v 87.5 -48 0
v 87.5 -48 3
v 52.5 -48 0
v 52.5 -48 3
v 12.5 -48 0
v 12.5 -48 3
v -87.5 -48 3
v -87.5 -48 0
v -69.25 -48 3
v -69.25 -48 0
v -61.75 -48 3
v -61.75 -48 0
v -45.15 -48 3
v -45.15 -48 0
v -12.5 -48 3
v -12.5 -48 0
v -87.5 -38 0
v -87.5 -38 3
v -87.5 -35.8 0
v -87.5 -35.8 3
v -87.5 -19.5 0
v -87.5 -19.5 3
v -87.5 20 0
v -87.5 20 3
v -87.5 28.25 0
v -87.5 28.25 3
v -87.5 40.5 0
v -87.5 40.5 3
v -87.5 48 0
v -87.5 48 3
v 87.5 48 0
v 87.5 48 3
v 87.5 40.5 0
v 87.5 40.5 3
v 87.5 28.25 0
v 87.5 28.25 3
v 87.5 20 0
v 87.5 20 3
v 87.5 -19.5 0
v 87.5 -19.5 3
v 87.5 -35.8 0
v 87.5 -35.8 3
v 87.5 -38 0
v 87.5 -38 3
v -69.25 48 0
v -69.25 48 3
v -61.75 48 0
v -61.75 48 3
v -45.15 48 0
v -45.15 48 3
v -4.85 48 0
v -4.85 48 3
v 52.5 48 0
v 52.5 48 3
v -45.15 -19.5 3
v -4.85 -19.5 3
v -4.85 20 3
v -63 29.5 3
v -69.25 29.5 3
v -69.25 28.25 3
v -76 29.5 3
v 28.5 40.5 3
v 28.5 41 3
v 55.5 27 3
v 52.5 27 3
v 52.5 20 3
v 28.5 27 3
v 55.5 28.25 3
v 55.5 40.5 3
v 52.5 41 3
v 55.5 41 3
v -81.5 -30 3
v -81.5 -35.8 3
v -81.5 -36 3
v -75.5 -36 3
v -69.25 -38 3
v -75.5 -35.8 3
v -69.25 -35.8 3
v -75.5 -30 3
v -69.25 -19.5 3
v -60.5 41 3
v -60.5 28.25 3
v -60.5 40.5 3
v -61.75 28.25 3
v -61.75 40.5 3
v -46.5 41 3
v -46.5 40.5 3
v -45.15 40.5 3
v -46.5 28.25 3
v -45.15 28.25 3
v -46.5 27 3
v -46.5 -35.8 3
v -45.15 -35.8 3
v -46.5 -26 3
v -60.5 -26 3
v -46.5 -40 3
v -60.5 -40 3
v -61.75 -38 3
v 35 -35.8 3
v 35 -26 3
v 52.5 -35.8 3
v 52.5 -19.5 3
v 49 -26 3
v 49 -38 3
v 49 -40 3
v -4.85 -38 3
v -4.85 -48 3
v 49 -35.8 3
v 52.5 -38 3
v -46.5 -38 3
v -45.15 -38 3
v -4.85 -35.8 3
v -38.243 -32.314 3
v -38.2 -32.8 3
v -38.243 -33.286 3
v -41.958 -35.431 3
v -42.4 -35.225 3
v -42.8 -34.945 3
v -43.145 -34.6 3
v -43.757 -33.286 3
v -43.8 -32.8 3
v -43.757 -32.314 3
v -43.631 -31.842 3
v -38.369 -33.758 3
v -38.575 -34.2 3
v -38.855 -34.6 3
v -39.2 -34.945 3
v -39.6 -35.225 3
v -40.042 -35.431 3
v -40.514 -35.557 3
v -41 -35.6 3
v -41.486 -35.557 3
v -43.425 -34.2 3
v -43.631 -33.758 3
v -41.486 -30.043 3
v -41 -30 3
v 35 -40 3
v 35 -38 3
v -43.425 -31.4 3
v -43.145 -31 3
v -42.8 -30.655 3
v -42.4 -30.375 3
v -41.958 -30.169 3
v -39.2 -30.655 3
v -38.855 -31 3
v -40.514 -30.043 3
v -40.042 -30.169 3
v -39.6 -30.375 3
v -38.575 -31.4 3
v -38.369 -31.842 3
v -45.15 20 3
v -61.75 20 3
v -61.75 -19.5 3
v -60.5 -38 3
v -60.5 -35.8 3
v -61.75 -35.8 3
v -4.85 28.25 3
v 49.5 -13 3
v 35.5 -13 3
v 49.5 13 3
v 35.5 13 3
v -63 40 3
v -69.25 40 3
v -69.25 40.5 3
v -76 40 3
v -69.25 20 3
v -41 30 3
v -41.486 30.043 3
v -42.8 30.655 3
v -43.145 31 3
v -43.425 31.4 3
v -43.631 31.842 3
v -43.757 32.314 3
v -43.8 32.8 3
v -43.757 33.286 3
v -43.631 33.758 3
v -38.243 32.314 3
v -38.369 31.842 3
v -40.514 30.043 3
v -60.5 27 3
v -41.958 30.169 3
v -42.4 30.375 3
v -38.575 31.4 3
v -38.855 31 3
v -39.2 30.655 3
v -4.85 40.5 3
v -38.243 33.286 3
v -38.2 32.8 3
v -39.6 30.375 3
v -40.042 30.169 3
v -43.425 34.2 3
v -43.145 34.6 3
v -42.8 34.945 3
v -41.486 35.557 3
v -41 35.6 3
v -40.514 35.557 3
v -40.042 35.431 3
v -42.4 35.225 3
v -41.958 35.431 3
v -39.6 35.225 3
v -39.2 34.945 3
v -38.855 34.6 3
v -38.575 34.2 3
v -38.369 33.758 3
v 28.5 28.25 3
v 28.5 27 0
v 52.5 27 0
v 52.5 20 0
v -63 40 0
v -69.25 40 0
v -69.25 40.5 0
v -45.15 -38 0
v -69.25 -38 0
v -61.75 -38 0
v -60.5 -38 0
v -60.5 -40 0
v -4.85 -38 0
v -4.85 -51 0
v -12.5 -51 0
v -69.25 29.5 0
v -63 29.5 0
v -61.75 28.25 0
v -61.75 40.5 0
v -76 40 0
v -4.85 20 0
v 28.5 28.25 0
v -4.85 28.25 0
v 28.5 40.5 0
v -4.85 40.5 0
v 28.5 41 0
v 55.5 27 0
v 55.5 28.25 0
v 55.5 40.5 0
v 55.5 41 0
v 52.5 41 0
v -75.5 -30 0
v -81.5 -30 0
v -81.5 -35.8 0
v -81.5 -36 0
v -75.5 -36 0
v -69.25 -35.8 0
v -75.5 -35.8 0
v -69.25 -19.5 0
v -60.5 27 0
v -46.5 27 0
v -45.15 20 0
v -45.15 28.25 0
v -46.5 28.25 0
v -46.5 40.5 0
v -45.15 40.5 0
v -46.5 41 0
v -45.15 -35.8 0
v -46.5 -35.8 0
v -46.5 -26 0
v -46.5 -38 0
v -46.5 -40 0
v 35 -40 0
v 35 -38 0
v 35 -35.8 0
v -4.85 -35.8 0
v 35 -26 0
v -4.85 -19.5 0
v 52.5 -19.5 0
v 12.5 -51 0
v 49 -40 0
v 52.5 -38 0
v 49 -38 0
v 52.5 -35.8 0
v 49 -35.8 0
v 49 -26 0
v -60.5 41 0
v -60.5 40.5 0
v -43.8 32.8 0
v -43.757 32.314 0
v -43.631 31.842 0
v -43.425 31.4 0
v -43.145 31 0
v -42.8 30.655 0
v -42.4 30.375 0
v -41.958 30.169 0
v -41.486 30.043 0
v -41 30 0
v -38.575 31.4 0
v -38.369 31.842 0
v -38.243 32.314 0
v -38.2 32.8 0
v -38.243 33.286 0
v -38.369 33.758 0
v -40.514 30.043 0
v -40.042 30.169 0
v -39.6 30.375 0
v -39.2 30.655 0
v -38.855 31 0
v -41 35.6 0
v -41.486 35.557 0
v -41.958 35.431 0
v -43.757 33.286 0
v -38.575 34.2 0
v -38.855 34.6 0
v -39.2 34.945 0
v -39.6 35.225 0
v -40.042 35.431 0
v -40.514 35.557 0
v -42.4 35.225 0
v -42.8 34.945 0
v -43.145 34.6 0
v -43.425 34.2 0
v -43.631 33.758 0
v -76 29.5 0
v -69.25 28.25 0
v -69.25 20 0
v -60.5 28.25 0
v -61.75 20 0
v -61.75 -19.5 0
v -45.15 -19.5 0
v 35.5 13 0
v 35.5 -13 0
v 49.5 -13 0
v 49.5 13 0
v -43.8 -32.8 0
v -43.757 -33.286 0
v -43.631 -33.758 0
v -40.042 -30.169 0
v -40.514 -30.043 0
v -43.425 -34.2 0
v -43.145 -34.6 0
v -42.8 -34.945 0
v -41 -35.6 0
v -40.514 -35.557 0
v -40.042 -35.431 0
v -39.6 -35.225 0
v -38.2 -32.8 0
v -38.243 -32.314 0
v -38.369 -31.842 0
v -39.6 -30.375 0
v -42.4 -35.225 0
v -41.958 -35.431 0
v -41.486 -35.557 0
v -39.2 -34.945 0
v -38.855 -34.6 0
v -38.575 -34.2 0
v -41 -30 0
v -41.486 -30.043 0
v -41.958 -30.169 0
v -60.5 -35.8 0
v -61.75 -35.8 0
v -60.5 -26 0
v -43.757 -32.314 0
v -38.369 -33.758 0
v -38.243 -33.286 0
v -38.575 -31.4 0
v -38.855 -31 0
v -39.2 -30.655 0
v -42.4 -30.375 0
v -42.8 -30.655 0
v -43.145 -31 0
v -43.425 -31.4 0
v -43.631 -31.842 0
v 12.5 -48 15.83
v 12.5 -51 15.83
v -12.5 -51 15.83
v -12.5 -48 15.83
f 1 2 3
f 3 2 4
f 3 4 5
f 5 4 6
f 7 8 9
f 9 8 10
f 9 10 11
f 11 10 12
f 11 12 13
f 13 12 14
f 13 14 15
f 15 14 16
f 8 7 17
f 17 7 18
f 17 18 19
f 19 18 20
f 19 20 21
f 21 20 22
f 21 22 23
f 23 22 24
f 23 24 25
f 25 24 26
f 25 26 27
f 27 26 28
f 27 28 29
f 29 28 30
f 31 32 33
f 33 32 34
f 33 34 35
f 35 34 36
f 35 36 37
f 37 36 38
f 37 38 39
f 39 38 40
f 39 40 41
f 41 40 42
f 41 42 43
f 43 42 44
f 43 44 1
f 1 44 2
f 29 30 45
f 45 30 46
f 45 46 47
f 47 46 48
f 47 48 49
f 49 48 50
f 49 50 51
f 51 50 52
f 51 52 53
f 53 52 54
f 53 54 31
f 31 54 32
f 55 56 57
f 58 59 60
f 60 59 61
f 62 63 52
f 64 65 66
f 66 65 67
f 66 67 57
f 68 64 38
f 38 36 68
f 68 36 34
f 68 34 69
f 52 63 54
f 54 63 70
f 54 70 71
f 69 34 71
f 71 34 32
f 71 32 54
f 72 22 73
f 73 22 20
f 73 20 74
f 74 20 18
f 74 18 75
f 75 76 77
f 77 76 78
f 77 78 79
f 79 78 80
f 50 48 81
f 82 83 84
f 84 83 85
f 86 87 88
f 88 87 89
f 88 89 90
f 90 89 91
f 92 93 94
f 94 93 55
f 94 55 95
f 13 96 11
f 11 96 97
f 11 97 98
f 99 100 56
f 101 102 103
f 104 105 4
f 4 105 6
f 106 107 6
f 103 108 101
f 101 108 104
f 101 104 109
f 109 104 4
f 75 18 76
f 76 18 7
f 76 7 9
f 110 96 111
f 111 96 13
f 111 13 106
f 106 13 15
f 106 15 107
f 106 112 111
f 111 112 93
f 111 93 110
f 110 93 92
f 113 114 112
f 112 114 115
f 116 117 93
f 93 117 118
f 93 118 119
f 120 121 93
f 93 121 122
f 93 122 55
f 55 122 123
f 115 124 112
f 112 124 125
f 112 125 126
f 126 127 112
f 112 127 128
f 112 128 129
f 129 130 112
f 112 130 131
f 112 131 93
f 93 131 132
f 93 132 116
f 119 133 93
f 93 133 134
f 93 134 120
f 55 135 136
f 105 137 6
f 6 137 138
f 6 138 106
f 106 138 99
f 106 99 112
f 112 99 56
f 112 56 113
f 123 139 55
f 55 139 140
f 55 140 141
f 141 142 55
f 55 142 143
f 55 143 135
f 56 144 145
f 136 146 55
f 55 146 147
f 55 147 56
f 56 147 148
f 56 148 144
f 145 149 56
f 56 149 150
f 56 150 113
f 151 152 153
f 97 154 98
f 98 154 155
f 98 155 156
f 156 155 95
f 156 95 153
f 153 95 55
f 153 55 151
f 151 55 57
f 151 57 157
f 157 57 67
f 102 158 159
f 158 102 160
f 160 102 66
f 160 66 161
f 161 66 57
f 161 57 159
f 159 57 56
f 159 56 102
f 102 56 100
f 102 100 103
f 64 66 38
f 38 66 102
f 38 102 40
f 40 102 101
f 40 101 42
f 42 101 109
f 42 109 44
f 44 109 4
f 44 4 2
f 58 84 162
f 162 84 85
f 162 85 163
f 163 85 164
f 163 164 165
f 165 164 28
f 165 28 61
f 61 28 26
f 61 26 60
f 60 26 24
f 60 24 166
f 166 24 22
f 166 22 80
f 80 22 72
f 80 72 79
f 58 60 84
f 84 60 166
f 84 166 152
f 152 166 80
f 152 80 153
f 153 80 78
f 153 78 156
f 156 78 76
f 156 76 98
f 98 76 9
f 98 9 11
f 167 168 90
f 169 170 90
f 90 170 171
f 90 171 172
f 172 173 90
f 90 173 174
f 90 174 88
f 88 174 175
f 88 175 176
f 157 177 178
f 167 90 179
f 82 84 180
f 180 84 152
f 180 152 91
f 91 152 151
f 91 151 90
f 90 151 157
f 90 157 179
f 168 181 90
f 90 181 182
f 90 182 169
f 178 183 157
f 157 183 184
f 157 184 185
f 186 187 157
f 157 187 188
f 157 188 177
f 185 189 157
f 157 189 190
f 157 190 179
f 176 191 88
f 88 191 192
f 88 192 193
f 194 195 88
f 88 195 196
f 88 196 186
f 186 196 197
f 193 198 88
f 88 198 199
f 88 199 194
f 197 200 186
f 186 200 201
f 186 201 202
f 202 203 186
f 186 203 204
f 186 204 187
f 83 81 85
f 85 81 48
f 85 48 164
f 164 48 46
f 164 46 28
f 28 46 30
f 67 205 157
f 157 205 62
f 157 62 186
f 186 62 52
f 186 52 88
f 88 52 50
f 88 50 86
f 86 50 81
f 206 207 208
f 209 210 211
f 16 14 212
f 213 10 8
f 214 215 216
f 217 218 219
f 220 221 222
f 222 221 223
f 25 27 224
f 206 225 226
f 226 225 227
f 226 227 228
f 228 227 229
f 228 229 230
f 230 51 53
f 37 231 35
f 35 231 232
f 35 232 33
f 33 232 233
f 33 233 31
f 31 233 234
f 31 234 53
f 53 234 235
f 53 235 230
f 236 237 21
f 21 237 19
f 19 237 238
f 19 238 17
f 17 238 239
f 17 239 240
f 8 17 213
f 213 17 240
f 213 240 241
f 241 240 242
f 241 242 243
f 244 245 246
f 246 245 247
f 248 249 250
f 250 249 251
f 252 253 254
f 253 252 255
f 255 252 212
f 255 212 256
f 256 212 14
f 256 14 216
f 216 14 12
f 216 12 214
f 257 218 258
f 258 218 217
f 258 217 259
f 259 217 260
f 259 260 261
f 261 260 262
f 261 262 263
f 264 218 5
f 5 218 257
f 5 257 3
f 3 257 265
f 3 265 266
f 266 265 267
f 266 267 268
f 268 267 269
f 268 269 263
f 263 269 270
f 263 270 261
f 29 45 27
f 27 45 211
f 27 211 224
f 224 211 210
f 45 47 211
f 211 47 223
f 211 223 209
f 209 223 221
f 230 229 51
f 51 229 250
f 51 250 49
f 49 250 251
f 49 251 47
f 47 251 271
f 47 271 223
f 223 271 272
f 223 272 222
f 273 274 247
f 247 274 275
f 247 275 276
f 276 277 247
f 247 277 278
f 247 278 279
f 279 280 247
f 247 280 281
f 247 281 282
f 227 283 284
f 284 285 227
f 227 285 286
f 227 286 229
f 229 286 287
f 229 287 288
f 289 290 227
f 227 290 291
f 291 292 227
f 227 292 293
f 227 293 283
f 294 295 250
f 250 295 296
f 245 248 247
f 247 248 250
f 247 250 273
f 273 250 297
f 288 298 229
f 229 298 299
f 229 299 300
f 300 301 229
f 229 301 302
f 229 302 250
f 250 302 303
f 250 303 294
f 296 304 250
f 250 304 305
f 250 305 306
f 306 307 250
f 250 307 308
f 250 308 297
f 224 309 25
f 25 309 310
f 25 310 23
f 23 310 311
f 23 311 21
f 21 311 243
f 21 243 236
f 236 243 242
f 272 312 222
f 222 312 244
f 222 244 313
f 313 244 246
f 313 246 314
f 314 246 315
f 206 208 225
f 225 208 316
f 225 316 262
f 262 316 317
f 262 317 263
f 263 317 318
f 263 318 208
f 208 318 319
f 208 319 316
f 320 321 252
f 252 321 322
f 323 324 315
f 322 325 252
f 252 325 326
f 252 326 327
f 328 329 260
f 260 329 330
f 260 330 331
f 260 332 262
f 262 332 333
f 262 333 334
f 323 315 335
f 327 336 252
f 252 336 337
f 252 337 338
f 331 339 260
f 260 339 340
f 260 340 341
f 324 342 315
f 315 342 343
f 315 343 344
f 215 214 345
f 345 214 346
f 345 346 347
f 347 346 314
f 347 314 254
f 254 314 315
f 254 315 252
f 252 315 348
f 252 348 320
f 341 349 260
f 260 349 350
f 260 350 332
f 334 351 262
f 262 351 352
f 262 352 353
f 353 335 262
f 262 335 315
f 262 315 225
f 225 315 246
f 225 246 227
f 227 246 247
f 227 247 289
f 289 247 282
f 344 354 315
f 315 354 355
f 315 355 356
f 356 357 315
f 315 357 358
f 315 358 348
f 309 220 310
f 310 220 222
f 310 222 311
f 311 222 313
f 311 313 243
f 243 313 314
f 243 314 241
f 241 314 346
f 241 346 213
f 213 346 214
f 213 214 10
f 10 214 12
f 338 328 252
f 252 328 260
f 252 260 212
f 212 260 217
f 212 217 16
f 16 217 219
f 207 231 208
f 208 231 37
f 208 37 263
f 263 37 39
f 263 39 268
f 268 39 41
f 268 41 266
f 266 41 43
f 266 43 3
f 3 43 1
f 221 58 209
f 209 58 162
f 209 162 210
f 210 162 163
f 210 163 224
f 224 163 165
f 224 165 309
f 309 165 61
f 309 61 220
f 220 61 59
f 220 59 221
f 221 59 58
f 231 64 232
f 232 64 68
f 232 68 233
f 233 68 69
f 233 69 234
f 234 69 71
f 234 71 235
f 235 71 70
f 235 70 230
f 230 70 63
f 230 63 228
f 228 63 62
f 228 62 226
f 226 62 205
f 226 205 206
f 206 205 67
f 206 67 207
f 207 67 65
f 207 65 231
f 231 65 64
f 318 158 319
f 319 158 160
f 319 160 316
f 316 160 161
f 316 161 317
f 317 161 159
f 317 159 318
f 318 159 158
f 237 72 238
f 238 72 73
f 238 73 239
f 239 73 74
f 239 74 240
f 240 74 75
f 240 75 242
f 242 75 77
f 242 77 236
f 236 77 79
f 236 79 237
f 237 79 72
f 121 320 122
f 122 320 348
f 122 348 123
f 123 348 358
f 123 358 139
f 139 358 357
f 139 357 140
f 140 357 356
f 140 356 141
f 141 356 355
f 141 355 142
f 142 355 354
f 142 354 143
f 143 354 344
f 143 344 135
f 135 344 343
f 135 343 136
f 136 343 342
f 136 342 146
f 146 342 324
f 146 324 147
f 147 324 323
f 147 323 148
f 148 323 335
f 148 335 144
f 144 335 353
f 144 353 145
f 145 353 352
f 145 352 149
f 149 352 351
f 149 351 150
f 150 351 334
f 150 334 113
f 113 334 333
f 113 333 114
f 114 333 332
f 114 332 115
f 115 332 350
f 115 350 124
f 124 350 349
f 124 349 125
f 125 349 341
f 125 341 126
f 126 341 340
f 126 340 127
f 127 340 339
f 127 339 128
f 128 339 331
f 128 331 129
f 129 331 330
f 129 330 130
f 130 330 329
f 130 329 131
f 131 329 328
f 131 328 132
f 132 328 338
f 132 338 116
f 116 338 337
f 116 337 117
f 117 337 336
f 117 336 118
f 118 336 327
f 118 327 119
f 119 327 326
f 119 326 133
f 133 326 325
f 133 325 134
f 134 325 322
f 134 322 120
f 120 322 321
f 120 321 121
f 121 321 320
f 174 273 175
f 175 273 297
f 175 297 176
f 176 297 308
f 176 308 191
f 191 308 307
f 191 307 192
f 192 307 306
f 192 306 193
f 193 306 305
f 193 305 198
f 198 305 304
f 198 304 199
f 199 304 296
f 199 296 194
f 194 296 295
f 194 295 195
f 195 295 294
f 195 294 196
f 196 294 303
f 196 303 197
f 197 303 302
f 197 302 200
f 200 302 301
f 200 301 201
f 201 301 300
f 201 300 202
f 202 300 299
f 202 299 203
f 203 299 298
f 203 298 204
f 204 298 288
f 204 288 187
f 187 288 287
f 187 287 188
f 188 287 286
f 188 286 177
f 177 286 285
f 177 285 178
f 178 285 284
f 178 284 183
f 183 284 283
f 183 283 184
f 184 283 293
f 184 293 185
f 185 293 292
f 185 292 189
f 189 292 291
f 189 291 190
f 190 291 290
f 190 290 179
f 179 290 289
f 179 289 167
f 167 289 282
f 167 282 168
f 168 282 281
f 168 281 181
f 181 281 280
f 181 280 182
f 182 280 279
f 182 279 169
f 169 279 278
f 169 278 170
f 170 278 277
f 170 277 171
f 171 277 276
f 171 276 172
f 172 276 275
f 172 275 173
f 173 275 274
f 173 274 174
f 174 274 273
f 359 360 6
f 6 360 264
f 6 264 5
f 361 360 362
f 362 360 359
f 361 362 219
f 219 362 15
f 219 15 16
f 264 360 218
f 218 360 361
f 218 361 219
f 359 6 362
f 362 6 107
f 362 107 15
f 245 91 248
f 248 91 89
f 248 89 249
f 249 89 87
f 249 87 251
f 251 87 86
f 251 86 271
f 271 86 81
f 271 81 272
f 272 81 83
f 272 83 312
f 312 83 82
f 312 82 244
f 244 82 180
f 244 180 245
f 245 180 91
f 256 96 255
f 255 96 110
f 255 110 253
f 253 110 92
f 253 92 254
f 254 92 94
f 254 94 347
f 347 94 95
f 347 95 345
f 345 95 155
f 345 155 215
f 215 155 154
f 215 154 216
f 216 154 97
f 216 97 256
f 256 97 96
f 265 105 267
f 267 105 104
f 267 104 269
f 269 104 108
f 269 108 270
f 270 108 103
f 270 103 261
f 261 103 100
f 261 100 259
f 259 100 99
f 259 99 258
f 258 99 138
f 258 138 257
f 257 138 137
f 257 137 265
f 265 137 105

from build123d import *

# Parameters (mm, degrees)
SKETCH2_W           = 175
SKETCH2_H           = 96
BOSS_EXTRUDE1_DEPTH = 3
SKETCH3_W           = 12
SKETCH3_H           = 12
SKETCH3_W_2         = 13
SKETCH3_H_2         = 10.5
SKETCH3_W_3         = 27
SKETCH3_H_3         = 14
CUT_EXTRUDE1_DEPTH  = 10
SKETCH4_W           = 14
SKETCH4_H           = 26
CUT_EXTRUDE2_DEPTH  = 10
SKETCH5_W           = 12
SKETCH5_H           = 12
SKETCH5_W_2         = 6
SKETCH5_H_2         = 6
CUT_EXTRUDE3_DEPTH  = 10
SKETCH7_R           = 2.8
CUT_EXTRUDE4_DEPTH  = 10
SKETCH9_W           = 25
SKETCH9_H           = 15.829859375
BOSS_EXTRUDE2_DEPTH = 3
SKETCH10_W          = 27
SKETCH10_H          = 14
CUT_EXTRUDE5_DEPTH  = 10
SKETCH11_W          = 14
SKETCH11_H          = 14
CUT_EXTRUDE6_DEPTH  = 10
SKETCH12_W          = 14
SKETCH12_H          = 14
CUT_EXTRUDE7_DEPTH  = 10
SKETCH13_W          = 14
SKETCH13_H          = 14
CUT_EXTRUDE8_DEPTH  = 10


with BuildPart() as part:
    # Sketch2 → Boss-Extrude1 (new body)
    with BuildSketch(Plane.XY):
        Rectangle(SKETCH2_W, SKETCH2_H)
    extrude(amount=BOSS_EXTRUDE1_DEPTH)

    # Sketch3 → Cut-Extrude1 (cut)
    with BuildSketch(Plane(origin=(0, 0, 0), x_dir=(-1, 0, 0), z_dir=(0, 0, -1))):
        with Locations((53.5, 34)):
            Rectangle(SKETCH3_W, SKETCH3_H)
        with Locations((69.5, 34.75)):
            Rectangle(SKETCH3_W_2, SKETCH3_H_2)
        with Locations((-42, 34)):
            Rectangle(SKETCH3_W_3, SKETCH3_H_3)
        with Locations((-48.5, 34)):
            Rectangle(SKETCH3_W, SKETCH3_H, mode=Mode.SUBTRACT)
        with Locations((-35.5, 34)):
            Rectangle(SKETCH3_W, SKETCH3_H, mode=Mode.SUBTRACT)
    extrude(amount=-CUT_EXTRUDE1_DEPTH, mode=Mode.SUBTRACT)

    # Sketch4 → Cut-Extrude2 (cut)
    with BuildSketch(Plane(origin=(0, 0, 0), x_dir=(-1, 0, 0), z_dir=(0, 0, -1))):
        with Locations((-42.5, 0)):
            Rectangle(SKETCH4_W, SKETCH4_H)
    extrude(amount=-CUT_EXTRUDE2_DEPTH, mode=Mode.SUBTRACT)

    # Sketch5 → Cut-Extrude3 (cut)
    with BuildSketch(Plane(origin=(0, 0, 0), x_dir=(-1, 0, 0), z_dir=(0, 0, -1))):
        with Locations((-42, -33)):
            Rectangle(SKETCH5_W, SKETCH5_H)
        with Locations((53.5, -33)):
            Rectangle(SKETCH5_W, SKETCH5_H)
        with Locations((78.5, -33)):
            Rectangle(SKETCH5_W_2, SKETCH5_H_2)
    extrude(amount=-CUT_EXTRUDE3_DEPTH, mode=Mode.SUBTRACT)

    # Sketch7 → Cut-Extrude4 (cut)
    with BuildSketch(Plane(origin=(0, 0, 0), x_dir=(-1, 0, 0), z_dir=(0, 0, -1))):
        with Locations((41, 32.8)):
            Circle(SKETCH7_R)
        with Locations((41, -32.8)):
            Circle(SKETCH7_R)
    extrude(amount=-CUT_EXTRUDE4_DEPTH, mode=Mode.SUBTRACT)

    # Sketch9 → Boss-Extrude2 (add)
    with BuildSketch(Plane.XZ.offset(48)):
        with Locations((0, 7.914929688)):
            Rectangle(SKETCH9_W, SKETCH9_H)
    extrude(amount=BOSS_EXTRUDE2_DEPTH)

    # Sketch10 → Cut-Extrude5 (cut)
    with BuildSketch(Plane(origin=(0, 0, 0), x_dir=(-1, 0, 0), z_dir=(0, 0, -1))):
        with Locations((-42, 34)):
            Rectangle(SKETCH10_W, SKETCH10_H)
    extrude(amount=-CUT_EXTRUDE5_DEPTH, mode=Mode.SUBTRACT)

    # Sketch11 → Cut-Extrude6 (cut)
    with BuildSketch(Plane(origin=(0, 0, 0), x_dir=(-1, 0, 0), z_dir=(0, 0, -1))):
        with Locations((53.5, 34)):
            Rectangle(SKETCH11_W, SKETCH11_H)
    extrude(amount=-CUT_EXTRUDE6_DEPTH, mode=Mode.SUBTRACT)

    # Sketch12 → Cut-Extrude7 (cut)
    with BuildSketch(Plane(origin=(0, 0, 0), x_dir=(-1, 0, 0), z_dir=(0, 0, -1))):
        with Locations((53.5, -33)):
            Rectangle(SKETCH12_W, SKETCH12_H)
    extrude(amount=-CUT_EXTRUDE7_DEPTH, mode=Mode.SUBTRACT)

    # Sketch13 → Cut-Extrude8 (cut)
    with BuildSketch(Plane(origin=(0, 0, 0), x_dir=(-1, 0, 0), z_dir=(0, 0, -1))):
        with Locations((-42, -33)):
            Rectangle(SKETCH13_W, SKETCH13_H)
    extrude(amount=-CUT_EXTRUDE8_DEPTH, mode=Mode.SUBTRACT)


solid = part.part
